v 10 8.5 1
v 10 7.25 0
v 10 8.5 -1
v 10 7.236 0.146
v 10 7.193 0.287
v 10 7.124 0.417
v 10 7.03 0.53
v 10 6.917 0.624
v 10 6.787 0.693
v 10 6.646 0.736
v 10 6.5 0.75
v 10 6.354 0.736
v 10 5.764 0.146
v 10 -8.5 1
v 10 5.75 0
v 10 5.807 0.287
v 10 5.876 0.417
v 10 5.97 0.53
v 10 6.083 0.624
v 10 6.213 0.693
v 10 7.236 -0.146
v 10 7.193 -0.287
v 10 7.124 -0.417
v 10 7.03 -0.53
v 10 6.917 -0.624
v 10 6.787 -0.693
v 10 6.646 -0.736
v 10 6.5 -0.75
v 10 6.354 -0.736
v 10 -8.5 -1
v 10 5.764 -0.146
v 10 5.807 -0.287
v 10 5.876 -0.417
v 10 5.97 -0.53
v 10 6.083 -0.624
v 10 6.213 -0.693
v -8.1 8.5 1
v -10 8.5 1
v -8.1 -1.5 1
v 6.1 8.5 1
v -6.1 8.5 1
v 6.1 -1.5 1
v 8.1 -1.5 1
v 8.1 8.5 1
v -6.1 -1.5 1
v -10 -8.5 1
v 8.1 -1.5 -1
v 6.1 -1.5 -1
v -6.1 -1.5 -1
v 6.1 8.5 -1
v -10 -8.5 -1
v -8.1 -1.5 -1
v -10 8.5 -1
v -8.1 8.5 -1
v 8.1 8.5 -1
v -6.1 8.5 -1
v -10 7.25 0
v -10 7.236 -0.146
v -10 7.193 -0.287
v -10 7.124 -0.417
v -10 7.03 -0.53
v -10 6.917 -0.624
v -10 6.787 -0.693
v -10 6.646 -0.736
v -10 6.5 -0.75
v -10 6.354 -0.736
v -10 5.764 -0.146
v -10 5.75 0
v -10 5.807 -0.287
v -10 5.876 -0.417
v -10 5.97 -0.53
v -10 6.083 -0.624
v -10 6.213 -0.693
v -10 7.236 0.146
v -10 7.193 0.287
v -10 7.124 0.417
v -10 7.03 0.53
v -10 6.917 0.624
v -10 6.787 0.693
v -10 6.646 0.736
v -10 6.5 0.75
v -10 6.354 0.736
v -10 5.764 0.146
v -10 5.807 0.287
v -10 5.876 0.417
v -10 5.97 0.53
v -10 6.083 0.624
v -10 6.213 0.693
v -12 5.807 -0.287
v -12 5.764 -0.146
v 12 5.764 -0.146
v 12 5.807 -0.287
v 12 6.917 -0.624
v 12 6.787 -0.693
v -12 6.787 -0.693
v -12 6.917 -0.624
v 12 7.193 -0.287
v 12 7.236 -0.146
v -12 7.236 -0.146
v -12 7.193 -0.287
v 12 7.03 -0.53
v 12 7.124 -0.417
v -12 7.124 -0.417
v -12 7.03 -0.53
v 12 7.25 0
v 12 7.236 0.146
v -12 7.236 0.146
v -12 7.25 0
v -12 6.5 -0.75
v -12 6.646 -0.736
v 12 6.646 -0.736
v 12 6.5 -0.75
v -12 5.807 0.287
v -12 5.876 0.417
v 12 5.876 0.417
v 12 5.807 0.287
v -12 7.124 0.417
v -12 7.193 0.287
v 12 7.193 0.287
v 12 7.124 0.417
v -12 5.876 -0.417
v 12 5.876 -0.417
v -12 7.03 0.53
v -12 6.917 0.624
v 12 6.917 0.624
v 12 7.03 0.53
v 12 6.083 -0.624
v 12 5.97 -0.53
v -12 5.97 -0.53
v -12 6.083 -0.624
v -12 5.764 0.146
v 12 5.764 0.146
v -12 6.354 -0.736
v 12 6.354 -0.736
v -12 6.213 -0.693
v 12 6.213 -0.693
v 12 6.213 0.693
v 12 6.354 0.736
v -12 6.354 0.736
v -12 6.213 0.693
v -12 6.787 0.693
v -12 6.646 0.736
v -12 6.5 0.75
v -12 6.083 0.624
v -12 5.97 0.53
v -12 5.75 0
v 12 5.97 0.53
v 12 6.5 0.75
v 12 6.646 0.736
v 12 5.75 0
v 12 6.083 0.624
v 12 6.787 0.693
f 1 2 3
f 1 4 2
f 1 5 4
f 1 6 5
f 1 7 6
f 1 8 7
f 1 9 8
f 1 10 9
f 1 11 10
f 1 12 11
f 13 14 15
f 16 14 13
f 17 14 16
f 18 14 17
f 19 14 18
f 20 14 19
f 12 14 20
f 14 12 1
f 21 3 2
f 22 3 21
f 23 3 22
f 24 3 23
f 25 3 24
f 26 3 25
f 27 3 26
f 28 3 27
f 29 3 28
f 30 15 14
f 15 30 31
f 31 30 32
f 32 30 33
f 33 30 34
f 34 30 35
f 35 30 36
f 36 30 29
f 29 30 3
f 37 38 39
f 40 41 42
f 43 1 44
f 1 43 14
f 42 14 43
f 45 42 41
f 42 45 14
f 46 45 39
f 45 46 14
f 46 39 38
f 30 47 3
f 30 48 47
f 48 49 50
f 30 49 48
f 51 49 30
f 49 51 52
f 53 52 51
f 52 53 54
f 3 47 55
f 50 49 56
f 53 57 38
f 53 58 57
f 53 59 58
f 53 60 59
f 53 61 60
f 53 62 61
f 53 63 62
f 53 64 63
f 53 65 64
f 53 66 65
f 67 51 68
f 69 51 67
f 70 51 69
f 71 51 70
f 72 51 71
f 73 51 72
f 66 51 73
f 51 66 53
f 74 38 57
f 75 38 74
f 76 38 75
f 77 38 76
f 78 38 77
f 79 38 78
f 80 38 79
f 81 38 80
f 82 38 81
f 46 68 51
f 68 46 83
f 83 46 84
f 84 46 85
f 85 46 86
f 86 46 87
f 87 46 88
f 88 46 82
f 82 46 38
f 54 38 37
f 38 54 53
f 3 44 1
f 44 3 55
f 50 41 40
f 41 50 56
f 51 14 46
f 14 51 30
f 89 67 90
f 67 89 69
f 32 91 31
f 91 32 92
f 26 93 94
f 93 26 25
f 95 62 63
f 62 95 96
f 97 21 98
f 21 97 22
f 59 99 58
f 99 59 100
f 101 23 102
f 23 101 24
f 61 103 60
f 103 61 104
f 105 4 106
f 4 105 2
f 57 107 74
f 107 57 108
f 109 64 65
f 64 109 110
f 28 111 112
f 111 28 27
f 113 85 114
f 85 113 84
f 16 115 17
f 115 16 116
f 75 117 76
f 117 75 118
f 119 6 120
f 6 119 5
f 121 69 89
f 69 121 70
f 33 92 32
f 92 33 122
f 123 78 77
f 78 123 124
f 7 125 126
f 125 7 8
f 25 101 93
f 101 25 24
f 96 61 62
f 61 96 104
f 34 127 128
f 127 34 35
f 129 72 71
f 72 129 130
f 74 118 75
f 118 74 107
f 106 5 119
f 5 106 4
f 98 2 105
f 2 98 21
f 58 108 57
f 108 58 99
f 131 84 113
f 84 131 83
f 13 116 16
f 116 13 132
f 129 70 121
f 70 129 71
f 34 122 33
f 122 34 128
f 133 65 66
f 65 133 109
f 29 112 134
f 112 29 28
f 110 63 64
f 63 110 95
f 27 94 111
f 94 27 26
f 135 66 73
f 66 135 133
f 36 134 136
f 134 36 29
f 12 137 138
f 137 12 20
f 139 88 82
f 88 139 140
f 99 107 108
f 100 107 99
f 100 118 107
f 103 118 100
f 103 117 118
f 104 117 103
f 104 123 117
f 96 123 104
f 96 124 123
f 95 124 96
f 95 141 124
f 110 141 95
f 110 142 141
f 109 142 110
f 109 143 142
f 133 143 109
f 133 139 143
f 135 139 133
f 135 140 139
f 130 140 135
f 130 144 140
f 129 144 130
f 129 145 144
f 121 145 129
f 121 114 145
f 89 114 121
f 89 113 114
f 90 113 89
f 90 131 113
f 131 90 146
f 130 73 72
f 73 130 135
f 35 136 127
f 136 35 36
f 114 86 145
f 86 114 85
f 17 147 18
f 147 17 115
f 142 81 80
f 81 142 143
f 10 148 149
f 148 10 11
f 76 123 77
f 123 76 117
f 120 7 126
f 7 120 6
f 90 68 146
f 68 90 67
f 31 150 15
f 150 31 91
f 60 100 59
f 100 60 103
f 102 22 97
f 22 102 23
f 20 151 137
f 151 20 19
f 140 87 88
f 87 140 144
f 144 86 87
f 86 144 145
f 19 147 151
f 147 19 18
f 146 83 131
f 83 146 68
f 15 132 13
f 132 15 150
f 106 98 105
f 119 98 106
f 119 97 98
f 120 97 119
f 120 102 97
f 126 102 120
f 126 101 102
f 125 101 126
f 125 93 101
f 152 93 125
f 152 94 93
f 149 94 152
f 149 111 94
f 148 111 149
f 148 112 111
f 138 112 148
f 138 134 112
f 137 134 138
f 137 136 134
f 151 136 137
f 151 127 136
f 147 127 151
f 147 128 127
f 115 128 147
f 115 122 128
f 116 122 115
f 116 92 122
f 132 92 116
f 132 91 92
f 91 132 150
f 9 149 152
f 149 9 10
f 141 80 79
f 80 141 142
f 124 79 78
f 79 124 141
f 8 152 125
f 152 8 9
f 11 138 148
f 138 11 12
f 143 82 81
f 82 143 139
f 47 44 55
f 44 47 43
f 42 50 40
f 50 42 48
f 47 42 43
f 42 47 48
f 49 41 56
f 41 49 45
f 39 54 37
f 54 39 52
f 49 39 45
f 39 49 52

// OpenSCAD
w = 20;
l = 17;
h = 2;

cutoutW = 2;
cutoutH = 10;
cutoutDelta = 1.9;

knobsR = 0.75;
knobsL = 2;
knobsDelta = 2;
$fn=32;

difference() {
    union() {
        cubeEx([w, l, h]);
        translate([0,l/2-knobsDelta,0])
        rotate([0, 90, 0]) 
            cylinder(w+2*knobsL, knobsR, knobsR, center=true);
    }
    translate([w/2-cutoutW/2-cutoutDelta, l/2, 0]) cubeEx([cutoutW, cutoutH*2, h*3]);
    translate([-(w/2-cutoutW/2-cutoutDelta), l/2, 0]) cubeEx([cutoutW, cutoutH*2, h*3]);
}

// my improved version of the openSCAD cube module
// size works like the first parameter of the cube primitive, it's a 3 dim vector that contains the sidelengths of the "cube" ;)
// center is also a 3 dim vector so you can specify the centering for each axis individually, This is normaly either -0.5, 0 (equal to center = true), or 0.5 (equal to center = false) but any value is possible.
// offset specifies an absolute offset in mm from the position that would result from just the center parameter
module cubeEx(size=[1,1,1], center=[0,0,0], offset=[0,0,0], childCenters, childOffsets, unionNotDifference=0)
{
	//s = 1.5;
	//centerExp = [s*center[0], s*center[1], s*center[2]];

	translate([center[0]*size[0]+offset[0], center[1]*size[1]+offset[1], center[2]*size[2]+offset[2]])
	{
		if (!unionNotDifference)
			difference()
			{
				cube(size, center = true);
				if ($children > 0) for (i = [0:$children-1])
					translate([childCenters[i][0]*size[0]+childOffsets[i][0], childCenters[i][1]*size[1]+childOffsets[i][1], childCenters[i][2]*size[2]+childOffsets[i][2]]) child(i);
			}
		if (unionNotDifference)
			union()
			{
				cube(size, center = true);
				if ($children > 0) for (i = [0:$children-1])
					translate([childCenters[i][0]*size[0]+childOffsets[i][0], childCenters[i][1]*size[1]+childOffsets[i][1], childCenters[i][2]*size[2]+childOffsets[i][2]]) child(i);
			}
	}
}
